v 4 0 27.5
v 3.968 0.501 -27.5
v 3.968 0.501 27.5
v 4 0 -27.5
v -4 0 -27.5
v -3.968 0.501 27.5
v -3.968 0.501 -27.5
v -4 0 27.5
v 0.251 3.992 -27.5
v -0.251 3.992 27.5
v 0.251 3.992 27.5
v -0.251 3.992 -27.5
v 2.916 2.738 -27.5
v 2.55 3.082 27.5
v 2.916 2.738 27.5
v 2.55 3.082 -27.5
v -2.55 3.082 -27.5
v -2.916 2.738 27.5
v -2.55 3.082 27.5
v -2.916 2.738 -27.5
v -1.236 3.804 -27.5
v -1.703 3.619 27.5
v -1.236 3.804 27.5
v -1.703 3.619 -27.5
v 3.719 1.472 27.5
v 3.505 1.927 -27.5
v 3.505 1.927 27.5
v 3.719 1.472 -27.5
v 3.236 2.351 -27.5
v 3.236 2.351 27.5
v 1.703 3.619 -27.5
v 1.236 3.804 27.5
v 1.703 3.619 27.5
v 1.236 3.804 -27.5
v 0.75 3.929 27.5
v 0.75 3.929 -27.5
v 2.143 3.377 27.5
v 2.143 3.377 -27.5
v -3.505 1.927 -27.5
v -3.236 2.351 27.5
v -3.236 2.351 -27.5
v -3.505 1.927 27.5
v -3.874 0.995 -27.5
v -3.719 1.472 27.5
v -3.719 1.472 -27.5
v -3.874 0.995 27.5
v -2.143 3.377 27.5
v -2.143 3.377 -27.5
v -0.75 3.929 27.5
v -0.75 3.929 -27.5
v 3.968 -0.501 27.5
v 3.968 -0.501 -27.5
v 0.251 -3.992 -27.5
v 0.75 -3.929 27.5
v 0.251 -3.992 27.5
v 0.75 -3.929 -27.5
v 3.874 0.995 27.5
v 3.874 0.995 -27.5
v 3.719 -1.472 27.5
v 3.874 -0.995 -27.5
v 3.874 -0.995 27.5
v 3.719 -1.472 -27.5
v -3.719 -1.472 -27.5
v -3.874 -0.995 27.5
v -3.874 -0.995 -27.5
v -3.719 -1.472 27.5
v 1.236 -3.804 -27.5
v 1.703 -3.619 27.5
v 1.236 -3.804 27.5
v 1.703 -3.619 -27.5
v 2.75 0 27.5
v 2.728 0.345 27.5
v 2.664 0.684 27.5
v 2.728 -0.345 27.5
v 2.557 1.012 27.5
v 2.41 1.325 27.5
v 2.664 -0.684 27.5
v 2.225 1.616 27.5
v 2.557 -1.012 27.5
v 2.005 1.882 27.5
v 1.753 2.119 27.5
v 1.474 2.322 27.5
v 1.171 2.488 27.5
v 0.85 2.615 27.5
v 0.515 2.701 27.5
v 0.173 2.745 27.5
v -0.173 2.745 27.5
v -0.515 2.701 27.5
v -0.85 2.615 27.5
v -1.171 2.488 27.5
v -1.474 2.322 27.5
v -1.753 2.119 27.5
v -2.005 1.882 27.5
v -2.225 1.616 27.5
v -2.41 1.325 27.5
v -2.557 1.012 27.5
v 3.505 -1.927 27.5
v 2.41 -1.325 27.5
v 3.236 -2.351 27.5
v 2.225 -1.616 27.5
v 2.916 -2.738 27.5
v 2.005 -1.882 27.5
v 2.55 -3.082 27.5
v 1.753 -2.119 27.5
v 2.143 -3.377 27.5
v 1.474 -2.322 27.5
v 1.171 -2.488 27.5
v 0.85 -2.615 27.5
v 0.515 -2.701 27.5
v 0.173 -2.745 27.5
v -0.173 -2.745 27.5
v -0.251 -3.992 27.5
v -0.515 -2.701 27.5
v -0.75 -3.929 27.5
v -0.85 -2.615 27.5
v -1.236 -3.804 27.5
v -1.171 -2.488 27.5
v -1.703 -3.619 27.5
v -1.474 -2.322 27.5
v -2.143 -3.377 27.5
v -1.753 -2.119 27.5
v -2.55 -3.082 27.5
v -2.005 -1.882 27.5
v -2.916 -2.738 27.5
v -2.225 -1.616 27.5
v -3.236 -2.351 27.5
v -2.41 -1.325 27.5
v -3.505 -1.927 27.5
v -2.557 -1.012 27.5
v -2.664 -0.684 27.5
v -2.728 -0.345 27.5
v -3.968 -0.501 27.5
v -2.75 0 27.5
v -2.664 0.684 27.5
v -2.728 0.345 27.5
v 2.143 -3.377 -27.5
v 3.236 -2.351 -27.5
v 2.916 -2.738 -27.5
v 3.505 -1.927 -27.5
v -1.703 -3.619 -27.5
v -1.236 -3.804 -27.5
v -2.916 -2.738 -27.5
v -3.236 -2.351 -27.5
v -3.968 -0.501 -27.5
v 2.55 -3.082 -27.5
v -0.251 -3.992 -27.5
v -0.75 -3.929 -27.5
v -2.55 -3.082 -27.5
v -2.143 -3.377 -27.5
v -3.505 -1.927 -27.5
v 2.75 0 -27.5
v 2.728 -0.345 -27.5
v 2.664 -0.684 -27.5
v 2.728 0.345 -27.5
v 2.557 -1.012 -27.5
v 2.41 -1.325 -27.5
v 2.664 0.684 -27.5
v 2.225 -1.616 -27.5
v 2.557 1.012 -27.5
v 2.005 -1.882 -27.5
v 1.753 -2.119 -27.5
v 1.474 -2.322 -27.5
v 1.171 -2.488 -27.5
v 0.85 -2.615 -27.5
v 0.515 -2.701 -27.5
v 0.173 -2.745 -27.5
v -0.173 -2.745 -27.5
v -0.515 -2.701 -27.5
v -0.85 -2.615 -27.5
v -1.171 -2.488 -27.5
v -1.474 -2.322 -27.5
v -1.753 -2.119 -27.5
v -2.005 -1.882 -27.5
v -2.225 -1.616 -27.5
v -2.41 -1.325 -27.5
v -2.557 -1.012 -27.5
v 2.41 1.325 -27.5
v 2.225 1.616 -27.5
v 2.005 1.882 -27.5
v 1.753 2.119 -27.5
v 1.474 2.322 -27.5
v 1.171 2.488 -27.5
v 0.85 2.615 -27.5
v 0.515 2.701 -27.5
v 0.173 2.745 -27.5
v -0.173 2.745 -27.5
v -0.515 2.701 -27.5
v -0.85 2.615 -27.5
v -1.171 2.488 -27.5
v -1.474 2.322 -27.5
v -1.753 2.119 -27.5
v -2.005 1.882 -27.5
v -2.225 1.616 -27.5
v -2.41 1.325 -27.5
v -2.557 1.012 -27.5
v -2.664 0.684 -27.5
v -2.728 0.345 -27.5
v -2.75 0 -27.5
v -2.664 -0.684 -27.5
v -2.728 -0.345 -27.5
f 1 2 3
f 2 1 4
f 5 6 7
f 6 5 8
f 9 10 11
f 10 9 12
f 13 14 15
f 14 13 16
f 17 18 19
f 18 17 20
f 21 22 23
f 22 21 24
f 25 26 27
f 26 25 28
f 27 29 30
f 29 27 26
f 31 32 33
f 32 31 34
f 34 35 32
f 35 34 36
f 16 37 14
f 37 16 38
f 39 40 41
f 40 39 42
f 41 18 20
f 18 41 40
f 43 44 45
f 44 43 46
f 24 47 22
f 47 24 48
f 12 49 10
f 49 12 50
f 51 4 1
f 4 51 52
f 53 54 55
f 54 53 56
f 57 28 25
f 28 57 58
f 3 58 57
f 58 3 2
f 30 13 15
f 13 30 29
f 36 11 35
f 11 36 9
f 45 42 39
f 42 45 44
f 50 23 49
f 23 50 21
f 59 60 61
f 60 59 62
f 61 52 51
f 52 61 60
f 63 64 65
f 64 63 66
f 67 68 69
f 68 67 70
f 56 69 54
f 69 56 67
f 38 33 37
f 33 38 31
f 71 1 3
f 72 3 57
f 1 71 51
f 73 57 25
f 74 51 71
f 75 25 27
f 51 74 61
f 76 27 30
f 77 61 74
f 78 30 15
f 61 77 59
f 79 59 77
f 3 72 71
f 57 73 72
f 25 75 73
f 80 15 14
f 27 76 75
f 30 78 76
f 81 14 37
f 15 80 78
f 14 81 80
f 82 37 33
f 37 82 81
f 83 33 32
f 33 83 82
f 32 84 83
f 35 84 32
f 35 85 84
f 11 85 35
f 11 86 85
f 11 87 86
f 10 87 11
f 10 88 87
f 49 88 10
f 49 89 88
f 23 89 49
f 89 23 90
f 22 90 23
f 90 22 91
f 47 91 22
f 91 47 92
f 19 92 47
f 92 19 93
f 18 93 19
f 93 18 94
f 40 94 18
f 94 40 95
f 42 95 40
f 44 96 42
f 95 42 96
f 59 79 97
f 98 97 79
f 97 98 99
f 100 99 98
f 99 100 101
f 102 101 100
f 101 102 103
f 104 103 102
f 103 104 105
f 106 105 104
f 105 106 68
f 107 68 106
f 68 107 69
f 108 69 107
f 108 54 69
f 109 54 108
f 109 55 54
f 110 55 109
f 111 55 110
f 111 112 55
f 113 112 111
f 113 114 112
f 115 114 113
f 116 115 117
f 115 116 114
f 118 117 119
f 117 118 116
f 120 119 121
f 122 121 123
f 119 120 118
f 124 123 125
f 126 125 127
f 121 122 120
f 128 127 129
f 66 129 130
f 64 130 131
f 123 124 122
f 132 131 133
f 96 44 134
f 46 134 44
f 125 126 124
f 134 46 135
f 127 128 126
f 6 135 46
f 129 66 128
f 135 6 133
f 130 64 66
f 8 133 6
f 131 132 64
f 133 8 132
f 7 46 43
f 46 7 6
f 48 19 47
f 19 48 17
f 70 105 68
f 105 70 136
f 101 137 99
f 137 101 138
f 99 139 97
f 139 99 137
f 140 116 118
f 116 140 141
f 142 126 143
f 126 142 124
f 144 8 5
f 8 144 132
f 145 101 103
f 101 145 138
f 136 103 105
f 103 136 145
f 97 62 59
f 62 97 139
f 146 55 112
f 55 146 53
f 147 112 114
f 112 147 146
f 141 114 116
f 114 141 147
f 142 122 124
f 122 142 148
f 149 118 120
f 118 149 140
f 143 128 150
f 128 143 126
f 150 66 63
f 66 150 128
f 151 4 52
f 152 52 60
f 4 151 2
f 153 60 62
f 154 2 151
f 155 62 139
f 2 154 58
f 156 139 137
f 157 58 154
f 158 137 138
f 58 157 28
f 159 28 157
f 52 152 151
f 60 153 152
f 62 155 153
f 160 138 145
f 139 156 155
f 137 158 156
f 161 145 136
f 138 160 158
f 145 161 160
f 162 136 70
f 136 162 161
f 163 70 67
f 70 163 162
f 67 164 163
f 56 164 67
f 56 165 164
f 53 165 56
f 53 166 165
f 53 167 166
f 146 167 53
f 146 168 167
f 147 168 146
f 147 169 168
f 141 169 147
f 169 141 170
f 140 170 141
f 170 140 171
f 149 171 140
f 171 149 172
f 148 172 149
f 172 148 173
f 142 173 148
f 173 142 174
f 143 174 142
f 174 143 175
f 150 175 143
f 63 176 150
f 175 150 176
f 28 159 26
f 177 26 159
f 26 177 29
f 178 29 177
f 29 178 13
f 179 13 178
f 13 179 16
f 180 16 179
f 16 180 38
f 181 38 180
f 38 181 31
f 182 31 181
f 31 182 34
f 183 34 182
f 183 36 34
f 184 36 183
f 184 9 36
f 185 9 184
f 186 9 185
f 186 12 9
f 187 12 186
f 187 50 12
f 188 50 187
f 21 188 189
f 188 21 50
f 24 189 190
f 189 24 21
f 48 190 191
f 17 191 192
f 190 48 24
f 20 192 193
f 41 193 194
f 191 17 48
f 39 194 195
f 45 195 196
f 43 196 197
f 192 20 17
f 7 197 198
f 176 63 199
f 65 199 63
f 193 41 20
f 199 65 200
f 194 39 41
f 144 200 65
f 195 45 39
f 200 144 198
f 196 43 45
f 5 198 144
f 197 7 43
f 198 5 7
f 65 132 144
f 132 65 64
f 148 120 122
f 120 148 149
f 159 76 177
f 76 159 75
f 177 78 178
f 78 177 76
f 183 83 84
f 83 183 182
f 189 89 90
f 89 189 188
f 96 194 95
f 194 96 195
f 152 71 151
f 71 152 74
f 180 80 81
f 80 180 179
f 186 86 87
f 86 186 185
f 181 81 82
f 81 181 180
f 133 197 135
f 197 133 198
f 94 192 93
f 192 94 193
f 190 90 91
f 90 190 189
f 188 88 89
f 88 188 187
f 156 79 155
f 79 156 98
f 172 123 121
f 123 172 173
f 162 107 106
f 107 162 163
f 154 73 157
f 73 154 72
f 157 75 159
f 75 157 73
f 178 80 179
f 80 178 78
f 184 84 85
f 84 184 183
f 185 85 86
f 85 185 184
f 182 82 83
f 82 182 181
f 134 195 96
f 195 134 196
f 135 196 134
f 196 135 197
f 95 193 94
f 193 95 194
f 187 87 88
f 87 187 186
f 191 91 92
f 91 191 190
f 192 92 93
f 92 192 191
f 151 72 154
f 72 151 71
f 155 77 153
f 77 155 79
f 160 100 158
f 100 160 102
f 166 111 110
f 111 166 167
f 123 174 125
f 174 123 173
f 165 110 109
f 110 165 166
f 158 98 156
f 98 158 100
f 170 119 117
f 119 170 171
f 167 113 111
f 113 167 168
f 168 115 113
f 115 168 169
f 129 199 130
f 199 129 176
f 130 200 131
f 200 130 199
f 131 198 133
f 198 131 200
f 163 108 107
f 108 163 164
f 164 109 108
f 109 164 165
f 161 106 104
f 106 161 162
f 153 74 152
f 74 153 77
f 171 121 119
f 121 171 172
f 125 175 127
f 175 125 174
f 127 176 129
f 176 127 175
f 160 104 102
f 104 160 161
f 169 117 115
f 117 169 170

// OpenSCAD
$fn = 50;


difference() {
	union() {
		translate(v = [0, 0, -27.5000000000]) {
			cylinder(h = 55, r = 4.0000000000);
		}
	}
	union() {
		translate(v = [0, 0, -100.0000000000]) {
			cylinder(h = 200, r = 2.7500000000);
		}
	}
}
